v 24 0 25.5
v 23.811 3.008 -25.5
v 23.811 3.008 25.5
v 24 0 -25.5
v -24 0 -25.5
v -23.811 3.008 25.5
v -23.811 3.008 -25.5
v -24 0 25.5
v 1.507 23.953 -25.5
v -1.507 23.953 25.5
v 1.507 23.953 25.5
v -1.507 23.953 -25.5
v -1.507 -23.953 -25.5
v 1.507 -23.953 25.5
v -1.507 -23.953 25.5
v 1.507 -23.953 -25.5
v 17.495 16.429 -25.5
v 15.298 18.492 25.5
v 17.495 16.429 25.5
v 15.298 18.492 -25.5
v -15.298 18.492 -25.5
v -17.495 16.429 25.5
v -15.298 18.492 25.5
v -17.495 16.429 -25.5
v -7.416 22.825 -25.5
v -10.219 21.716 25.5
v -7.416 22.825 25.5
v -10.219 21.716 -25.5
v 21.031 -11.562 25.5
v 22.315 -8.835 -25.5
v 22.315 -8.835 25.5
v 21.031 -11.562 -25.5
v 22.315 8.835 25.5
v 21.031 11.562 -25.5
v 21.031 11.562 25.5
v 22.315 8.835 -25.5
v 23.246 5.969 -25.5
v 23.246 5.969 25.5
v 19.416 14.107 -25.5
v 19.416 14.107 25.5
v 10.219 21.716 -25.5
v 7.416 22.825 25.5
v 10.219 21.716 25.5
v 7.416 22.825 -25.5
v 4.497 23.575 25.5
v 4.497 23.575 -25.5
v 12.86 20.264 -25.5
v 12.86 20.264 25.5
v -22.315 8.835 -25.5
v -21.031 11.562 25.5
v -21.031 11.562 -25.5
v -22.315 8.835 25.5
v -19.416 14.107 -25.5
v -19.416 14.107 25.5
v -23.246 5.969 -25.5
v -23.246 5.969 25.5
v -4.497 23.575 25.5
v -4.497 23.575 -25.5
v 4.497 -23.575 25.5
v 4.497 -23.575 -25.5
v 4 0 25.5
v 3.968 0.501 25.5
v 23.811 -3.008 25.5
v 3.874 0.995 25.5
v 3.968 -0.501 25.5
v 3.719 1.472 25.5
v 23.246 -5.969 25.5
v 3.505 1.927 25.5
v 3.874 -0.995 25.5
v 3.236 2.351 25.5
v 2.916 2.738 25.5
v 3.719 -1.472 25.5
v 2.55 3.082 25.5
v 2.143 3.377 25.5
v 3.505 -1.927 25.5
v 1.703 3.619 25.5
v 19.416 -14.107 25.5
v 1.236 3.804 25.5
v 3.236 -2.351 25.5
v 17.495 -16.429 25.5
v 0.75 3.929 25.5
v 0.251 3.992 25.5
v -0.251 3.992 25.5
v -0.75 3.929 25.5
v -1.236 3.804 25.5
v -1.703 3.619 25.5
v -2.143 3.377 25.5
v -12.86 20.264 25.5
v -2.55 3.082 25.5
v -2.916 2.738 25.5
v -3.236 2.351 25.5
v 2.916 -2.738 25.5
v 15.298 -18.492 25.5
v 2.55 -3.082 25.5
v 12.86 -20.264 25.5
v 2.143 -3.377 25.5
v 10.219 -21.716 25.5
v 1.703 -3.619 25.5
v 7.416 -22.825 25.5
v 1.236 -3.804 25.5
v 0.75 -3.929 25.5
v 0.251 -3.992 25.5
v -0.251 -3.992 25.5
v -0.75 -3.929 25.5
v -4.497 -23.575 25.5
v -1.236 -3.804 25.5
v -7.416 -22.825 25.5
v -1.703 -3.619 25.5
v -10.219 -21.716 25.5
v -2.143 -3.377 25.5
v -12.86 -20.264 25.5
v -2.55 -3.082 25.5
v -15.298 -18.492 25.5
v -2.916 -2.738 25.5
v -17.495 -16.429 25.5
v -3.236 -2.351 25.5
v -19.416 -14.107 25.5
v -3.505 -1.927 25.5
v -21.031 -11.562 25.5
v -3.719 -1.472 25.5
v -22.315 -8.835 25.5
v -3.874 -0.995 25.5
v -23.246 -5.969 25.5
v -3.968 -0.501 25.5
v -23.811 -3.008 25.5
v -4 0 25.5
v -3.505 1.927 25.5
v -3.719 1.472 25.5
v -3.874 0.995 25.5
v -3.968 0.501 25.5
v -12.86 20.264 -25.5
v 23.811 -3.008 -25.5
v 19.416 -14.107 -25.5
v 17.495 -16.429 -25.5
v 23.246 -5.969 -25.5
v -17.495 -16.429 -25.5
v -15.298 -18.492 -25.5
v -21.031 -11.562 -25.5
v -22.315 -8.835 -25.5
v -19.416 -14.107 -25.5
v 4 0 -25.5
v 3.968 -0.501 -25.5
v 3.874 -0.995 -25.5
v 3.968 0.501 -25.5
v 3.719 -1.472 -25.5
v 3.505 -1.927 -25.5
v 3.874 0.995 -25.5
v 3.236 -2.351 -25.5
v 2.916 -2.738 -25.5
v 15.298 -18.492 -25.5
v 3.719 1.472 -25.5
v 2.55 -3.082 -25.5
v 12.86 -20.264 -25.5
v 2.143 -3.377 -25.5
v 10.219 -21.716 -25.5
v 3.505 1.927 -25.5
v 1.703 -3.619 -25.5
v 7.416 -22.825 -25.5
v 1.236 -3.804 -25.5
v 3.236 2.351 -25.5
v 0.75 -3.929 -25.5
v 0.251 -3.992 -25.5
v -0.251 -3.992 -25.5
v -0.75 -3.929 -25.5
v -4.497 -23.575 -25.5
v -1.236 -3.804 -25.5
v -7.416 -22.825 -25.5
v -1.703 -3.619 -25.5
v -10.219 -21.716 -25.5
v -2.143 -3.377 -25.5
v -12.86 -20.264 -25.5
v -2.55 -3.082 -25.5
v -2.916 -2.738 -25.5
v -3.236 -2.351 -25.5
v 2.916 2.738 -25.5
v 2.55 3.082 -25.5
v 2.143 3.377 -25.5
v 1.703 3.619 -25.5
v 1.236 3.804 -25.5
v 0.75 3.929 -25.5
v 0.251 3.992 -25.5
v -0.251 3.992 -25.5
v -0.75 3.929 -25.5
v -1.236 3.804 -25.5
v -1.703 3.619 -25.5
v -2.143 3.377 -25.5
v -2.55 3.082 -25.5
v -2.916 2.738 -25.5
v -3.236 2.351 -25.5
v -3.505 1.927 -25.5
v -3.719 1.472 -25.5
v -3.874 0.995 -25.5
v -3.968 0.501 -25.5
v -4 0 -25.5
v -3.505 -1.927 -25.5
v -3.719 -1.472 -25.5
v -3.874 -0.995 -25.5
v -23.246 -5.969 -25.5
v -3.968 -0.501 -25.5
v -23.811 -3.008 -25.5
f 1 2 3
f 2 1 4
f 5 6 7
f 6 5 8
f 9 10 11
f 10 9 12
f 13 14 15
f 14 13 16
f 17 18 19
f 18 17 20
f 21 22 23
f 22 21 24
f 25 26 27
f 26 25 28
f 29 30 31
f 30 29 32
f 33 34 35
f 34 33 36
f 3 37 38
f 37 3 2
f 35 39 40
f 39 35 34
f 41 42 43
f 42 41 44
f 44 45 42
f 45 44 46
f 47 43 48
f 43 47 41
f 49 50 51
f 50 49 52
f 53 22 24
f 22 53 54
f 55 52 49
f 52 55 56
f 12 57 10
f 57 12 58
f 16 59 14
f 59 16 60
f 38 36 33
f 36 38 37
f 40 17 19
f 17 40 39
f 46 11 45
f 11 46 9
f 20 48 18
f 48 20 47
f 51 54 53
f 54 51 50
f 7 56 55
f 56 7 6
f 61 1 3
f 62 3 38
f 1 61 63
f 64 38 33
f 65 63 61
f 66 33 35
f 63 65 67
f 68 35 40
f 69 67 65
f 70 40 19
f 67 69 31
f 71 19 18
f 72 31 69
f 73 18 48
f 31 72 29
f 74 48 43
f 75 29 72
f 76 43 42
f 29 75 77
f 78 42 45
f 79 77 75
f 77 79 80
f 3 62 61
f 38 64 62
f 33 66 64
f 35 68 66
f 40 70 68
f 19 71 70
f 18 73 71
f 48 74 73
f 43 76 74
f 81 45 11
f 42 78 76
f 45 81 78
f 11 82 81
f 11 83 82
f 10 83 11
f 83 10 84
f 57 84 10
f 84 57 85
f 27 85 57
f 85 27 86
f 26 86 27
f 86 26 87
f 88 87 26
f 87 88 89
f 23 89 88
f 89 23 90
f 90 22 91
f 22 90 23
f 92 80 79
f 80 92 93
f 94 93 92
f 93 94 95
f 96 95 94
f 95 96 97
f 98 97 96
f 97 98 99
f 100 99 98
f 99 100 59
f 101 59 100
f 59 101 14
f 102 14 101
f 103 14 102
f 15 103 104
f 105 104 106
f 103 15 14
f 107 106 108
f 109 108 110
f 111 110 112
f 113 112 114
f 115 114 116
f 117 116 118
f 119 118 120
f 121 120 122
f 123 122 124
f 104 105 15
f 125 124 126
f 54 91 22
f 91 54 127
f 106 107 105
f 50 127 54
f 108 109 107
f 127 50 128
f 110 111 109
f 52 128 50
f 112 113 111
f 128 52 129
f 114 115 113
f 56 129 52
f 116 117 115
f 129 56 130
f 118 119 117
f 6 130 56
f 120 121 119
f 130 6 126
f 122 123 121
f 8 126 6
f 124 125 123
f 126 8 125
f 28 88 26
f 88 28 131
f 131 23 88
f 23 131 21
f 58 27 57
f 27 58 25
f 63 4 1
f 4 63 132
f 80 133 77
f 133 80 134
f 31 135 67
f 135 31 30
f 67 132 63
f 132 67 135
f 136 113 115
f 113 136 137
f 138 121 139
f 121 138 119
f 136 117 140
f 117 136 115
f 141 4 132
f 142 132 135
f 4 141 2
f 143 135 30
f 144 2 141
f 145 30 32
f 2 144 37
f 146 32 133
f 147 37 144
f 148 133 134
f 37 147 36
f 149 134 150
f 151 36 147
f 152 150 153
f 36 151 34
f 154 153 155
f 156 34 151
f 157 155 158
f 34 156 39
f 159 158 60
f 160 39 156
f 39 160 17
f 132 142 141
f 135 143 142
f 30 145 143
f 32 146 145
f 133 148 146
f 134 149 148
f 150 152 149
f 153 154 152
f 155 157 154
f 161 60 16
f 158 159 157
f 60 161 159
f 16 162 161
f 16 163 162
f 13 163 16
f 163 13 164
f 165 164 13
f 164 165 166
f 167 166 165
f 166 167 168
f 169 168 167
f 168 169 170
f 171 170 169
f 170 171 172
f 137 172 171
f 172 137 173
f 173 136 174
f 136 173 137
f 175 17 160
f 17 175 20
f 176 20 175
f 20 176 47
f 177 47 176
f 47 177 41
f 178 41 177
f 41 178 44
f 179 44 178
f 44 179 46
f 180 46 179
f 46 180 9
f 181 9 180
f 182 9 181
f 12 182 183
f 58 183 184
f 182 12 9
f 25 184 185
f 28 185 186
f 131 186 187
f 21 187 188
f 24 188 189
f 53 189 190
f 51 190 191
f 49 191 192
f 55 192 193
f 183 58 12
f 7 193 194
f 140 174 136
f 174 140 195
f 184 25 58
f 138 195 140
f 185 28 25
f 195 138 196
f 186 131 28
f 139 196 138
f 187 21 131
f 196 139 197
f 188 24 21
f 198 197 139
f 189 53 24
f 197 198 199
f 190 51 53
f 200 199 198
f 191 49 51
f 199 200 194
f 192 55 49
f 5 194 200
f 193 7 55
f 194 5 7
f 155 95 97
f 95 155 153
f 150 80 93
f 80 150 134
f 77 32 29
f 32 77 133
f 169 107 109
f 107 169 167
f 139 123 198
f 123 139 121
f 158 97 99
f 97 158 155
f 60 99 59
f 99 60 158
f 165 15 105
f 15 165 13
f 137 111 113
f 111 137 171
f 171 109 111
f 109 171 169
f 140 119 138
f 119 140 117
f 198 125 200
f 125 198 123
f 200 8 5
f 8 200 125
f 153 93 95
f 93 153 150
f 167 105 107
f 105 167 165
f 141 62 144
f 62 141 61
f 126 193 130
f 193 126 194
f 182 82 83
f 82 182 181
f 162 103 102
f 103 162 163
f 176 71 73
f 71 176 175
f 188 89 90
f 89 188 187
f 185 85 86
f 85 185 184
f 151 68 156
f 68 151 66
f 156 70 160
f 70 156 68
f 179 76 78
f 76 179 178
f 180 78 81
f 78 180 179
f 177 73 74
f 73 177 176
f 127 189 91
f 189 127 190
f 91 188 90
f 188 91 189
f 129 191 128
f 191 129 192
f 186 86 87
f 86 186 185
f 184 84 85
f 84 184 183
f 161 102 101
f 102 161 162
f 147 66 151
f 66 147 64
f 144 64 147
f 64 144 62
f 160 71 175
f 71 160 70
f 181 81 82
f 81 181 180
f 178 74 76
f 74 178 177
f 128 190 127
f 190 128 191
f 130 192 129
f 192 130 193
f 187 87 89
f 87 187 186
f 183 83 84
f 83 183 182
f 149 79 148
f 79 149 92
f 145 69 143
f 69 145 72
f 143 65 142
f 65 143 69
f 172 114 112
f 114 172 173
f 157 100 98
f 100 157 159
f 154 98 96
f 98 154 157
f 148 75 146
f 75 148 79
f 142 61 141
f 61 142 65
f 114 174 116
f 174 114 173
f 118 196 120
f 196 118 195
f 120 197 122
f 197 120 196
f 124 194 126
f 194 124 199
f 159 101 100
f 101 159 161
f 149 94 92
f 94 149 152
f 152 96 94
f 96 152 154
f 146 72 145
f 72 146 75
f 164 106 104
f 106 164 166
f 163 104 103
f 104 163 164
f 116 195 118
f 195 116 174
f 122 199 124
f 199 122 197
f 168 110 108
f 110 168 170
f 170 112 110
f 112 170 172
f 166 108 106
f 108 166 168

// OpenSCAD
$fn = 50;


difference() {
	union() {
		translate(v = [0, 0, -25.5000000000]) {
			cylinder(h = 51, r = 24.0000000000);
		}
	}
	union() {
		translate(v = [0, 0, -100.0000000000]) {
			cylinder(h = 200, r = 4.0000000000);
		}
	}
}
